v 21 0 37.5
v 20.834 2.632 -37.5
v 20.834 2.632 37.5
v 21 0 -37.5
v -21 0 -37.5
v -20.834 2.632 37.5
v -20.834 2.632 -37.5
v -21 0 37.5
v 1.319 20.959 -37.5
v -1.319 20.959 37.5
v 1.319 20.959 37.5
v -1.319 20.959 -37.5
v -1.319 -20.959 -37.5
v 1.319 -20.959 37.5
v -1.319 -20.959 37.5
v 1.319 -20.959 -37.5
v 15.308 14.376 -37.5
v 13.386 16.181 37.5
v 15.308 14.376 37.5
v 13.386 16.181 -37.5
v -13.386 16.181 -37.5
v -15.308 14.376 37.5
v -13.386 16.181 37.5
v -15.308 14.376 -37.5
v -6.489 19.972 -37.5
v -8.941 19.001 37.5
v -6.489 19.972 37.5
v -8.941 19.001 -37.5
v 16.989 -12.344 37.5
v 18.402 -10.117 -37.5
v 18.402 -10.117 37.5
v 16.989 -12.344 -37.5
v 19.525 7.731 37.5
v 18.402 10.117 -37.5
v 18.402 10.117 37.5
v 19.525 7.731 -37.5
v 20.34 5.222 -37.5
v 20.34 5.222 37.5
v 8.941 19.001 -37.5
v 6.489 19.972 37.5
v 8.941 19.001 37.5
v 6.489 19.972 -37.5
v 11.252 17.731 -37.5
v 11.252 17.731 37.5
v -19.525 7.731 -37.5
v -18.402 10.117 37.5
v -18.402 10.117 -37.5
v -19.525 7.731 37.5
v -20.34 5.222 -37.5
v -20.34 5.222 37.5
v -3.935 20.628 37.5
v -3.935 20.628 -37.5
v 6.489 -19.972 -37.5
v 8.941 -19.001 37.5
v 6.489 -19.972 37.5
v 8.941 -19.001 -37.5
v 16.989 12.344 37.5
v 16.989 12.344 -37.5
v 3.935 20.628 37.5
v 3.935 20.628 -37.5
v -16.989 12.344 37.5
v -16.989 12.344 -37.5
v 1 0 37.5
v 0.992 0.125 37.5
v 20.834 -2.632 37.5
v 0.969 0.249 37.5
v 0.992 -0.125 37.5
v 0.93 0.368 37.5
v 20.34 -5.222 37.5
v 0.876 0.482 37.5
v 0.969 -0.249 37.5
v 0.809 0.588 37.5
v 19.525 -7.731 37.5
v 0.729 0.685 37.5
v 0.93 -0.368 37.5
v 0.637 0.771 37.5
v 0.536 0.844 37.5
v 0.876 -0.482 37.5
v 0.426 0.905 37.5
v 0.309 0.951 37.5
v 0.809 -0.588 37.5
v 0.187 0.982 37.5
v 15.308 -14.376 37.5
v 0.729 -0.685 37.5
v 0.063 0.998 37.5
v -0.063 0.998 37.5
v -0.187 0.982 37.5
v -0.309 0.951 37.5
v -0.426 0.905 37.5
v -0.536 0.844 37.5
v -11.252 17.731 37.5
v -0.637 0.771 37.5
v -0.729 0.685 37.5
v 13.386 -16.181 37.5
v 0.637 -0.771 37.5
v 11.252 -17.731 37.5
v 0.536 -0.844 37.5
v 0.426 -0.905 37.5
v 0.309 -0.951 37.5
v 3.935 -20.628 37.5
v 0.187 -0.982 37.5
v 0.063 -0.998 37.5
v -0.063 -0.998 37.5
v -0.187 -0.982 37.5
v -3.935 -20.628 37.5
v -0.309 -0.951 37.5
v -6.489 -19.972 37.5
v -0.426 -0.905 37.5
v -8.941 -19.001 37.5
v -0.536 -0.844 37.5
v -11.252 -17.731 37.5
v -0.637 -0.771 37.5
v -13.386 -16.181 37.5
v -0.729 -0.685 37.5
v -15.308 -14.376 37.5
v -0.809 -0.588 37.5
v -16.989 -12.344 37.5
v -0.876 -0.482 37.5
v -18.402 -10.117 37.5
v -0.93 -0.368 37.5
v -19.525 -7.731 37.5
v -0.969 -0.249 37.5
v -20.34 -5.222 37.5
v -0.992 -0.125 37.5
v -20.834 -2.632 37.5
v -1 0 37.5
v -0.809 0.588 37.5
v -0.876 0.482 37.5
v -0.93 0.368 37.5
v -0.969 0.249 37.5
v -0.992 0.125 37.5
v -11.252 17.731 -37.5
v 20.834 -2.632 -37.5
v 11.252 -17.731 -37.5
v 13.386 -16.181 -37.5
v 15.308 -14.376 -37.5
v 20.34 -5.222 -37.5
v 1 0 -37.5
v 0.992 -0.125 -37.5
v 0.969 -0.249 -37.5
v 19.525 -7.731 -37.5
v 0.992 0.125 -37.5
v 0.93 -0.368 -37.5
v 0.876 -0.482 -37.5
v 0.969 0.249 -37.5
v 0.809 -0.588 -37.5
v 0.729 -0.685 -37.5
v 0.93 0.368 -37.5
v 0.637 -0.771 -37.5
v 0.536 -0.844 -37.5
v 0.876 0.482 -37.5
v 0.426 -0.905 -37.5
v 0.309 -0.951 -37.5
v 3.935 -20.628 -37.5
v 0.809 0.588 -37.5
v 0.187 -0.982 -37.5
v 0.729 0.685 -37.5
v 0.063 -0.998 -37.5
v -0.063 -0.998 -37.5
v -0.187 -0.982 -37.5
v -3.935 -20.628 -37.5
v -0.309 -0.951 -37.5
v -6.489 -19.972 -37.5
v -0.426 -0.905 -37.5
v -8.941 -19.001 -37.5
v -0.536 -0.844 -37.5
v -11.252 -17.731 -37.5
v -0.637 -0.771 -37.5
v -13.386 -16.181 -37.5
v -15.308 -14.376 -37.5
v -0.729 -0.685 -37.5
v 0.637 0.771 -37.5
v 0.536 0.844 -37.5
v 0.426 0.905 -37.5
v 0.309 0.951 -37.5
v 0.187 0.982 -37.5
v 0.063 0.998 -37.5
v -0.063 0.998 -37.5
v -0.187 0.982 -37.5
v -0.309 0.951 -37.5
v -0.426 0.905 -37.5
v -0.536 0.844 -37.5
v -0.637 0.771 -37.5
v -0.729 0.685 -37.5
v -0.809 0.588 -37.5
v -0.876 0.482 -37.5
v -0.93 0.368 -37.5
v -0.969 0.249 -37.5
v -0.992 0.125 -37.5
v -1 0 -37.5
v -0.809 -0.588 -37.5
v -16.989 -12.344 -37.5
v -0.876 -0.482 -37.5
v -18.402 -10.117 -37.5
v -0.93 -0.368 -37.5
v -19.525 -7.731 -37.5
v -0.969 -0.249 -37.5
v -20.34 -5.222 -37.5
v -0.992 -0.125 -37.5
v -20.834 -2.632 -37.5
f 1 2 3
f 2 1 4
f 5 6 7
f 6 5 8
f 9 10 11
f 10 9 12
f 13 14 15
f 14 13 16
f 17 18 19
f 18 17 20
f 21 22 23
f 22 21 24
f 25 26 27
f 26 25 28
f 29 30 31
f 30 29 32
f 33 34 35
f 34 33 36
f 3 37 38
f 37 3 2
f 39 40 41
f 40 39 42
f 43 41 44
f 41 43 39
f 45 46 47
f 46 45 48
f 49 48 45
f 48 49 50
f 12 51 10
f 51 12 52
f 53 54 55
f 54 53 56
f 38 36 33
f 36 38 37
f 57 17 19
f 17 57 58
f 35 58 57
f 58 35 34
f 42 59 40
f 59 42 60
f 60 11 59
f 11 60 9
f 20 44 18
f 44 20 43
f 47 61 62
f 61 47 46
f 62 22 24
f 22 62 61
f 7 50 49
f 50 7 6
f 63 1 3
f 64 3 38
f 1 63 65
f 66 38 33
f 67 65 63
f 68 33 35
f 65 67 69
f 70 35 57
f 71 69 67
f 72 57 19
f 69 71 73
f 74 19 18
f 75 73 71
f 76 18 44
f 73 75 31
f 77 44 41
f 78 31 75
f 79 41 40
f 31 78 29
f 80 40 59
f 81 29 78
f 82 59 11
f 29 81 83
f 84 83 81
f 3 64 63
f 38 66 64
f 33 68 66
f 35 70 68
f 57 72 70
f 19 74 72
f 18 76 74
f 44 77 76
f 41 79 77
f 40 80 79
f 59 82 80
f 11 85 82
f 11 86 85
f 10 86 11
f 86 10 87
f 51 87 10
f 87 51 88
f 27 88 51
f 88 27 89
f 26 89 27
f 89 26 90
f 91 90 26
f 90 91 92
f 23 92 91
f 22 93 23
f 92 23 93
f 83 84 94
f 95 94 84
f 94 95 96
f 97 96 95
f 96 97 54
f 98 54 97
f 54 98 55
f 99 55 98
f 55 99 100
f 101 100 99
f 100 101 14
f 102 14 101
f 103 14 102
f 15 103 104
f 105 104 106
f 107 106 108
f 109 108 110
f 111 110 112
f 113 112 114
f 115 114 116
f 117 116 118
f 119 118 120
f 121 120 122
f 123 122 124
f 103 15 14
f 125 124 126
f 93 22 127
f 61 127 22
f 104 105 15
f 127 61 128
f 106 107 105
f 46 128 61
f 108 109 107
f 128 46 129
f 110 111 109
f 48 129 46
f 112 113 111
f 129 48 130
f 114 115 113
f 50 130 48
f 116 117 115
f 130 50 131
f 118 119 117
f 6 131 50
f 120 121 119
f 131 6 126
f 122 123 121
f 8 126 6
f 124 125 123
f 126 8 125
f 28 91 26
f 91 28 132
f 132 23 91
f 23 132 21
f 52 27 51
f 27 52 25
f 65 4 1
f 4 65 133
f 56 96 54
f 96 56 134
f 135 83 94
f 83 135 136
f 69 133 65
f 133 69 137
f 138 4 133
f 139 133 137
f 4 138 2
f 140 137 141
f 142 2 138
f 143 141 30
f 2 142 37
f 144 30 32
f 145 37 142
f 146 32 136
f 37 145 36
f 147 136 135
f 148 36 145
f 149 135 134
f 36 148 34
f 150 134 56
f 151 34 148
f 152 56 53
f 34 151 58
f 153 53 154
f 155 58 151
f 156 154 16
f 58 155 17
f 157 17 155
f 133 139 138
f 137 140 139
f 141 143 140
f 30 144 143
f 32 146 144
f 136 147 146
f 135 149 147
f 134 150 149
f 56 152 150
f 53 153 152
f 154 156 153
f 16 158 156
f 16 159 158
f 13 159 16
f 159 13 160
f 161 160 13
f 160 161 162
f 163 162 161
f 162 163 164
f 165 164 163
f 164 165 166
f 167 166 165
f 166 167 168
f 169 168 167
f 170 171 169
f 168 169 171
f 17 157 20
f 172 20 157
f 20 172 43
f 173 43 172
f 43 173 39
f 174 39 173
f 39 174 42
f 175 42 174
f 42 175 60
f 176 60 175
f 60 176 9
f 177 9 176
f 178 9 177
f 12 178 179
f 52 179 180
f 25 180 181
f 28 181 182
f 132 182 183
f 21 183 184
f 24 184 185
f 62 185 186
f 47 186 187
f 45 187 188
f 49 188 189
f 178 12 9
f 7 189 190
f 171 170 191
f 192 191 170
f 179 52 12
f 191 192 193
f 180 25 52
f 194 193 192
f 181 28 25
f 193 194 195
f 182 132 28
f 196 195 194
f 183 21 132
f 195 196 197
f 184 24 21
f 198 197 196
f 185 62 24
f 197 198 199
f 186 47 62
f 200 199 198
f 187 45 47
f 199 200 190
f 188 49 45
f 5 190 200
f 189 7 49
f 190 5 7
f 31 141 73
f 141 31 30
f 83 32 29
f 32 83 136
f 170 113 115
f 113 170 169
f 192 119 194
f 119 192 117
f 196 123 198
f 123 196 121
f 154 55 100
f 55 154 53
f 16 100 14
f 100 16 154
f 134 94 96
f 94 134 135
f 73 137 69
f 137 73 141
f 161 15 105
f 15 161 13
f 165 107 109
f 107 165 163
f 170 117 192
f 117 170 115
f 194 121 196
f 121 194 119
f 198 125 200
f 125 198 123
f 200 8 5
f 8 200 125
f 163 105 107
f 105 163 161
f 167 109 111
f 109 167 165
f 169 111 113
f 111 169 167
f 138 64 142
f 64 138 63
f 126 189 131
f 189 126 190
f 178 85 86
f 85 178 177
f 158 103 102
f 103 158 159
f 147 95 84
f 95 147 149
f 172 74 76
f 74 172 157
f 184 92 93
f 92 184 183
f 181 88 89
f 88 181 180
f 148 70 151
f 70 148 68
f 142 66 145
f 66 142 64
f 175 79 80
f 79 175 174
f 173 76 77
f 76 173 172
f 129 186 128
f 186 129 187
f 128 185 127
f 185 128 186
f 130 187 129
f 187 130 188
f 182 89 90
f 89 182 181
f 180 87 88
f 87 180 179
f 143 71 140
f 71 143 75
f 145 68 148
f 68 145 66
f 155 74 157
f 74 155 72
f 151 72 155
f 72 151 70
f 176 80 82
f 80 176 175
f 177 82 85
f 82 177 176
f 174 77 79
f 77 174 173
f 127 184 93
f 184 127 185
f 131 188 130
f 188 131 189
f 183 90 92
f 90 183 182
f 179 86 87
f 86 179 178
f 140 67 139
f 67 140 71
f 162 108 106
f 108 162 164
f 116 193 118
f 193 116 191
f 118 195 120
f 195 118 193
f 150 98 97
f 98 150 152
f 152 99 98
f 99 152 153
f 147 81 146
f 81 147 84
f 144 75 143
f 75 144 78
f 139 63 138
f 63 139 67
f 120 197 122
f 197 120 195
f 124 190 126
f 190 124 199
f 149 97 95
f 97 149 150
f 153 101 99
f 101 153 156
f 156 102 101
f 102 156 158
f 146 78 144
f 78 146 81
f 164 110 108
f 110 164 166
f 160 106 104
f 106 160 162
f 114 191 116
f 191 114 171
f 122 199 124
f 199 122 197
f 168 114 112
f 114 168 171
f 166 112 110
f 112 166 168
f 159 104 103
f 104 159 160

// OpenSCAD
$fn = 50;


difference() {
	union() {
		translate(v = [0, 0, -37.5000000000]) {
			cylinder(h = 75, r = 21.0000000000);
		}
	}
	union() {
		translate(v = [0, 0, -100.0000000000]) {
			cylinder(h = 200, r = 1.0000000000);
		}
	}
}
